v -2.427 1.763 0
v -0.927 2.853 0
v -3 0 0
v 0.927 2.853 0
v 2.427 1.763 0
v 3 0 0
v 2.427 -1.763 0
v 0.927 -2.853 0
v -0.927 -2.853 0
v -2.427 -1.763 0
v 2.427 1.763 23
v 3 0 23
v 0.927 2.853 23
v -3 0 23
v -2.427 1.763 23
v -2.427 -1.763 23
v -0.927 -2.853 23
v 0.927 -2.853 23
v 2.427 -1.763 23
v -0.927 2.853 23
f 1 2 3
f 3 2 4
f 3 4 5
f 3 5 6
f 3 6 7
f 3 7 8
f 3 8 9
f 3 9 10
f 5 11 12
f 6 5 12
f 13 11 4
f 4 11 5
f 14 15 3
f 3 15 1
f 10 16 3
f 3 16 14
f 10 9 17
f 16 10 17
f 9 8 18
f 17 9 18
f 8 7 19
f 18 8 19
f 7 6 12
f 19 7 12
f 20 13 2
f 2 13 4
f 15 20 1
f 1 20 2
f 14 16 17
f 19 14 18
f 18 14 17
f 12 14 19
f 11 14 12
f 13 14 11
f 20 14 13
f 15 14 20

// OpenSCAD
steel = [0.8, 0.8, 0.9];

module ceramic_heater() {
    color(steel) render() union() {
        cylinder(r=3, h=23);
    }
}

ceramic_heater();
